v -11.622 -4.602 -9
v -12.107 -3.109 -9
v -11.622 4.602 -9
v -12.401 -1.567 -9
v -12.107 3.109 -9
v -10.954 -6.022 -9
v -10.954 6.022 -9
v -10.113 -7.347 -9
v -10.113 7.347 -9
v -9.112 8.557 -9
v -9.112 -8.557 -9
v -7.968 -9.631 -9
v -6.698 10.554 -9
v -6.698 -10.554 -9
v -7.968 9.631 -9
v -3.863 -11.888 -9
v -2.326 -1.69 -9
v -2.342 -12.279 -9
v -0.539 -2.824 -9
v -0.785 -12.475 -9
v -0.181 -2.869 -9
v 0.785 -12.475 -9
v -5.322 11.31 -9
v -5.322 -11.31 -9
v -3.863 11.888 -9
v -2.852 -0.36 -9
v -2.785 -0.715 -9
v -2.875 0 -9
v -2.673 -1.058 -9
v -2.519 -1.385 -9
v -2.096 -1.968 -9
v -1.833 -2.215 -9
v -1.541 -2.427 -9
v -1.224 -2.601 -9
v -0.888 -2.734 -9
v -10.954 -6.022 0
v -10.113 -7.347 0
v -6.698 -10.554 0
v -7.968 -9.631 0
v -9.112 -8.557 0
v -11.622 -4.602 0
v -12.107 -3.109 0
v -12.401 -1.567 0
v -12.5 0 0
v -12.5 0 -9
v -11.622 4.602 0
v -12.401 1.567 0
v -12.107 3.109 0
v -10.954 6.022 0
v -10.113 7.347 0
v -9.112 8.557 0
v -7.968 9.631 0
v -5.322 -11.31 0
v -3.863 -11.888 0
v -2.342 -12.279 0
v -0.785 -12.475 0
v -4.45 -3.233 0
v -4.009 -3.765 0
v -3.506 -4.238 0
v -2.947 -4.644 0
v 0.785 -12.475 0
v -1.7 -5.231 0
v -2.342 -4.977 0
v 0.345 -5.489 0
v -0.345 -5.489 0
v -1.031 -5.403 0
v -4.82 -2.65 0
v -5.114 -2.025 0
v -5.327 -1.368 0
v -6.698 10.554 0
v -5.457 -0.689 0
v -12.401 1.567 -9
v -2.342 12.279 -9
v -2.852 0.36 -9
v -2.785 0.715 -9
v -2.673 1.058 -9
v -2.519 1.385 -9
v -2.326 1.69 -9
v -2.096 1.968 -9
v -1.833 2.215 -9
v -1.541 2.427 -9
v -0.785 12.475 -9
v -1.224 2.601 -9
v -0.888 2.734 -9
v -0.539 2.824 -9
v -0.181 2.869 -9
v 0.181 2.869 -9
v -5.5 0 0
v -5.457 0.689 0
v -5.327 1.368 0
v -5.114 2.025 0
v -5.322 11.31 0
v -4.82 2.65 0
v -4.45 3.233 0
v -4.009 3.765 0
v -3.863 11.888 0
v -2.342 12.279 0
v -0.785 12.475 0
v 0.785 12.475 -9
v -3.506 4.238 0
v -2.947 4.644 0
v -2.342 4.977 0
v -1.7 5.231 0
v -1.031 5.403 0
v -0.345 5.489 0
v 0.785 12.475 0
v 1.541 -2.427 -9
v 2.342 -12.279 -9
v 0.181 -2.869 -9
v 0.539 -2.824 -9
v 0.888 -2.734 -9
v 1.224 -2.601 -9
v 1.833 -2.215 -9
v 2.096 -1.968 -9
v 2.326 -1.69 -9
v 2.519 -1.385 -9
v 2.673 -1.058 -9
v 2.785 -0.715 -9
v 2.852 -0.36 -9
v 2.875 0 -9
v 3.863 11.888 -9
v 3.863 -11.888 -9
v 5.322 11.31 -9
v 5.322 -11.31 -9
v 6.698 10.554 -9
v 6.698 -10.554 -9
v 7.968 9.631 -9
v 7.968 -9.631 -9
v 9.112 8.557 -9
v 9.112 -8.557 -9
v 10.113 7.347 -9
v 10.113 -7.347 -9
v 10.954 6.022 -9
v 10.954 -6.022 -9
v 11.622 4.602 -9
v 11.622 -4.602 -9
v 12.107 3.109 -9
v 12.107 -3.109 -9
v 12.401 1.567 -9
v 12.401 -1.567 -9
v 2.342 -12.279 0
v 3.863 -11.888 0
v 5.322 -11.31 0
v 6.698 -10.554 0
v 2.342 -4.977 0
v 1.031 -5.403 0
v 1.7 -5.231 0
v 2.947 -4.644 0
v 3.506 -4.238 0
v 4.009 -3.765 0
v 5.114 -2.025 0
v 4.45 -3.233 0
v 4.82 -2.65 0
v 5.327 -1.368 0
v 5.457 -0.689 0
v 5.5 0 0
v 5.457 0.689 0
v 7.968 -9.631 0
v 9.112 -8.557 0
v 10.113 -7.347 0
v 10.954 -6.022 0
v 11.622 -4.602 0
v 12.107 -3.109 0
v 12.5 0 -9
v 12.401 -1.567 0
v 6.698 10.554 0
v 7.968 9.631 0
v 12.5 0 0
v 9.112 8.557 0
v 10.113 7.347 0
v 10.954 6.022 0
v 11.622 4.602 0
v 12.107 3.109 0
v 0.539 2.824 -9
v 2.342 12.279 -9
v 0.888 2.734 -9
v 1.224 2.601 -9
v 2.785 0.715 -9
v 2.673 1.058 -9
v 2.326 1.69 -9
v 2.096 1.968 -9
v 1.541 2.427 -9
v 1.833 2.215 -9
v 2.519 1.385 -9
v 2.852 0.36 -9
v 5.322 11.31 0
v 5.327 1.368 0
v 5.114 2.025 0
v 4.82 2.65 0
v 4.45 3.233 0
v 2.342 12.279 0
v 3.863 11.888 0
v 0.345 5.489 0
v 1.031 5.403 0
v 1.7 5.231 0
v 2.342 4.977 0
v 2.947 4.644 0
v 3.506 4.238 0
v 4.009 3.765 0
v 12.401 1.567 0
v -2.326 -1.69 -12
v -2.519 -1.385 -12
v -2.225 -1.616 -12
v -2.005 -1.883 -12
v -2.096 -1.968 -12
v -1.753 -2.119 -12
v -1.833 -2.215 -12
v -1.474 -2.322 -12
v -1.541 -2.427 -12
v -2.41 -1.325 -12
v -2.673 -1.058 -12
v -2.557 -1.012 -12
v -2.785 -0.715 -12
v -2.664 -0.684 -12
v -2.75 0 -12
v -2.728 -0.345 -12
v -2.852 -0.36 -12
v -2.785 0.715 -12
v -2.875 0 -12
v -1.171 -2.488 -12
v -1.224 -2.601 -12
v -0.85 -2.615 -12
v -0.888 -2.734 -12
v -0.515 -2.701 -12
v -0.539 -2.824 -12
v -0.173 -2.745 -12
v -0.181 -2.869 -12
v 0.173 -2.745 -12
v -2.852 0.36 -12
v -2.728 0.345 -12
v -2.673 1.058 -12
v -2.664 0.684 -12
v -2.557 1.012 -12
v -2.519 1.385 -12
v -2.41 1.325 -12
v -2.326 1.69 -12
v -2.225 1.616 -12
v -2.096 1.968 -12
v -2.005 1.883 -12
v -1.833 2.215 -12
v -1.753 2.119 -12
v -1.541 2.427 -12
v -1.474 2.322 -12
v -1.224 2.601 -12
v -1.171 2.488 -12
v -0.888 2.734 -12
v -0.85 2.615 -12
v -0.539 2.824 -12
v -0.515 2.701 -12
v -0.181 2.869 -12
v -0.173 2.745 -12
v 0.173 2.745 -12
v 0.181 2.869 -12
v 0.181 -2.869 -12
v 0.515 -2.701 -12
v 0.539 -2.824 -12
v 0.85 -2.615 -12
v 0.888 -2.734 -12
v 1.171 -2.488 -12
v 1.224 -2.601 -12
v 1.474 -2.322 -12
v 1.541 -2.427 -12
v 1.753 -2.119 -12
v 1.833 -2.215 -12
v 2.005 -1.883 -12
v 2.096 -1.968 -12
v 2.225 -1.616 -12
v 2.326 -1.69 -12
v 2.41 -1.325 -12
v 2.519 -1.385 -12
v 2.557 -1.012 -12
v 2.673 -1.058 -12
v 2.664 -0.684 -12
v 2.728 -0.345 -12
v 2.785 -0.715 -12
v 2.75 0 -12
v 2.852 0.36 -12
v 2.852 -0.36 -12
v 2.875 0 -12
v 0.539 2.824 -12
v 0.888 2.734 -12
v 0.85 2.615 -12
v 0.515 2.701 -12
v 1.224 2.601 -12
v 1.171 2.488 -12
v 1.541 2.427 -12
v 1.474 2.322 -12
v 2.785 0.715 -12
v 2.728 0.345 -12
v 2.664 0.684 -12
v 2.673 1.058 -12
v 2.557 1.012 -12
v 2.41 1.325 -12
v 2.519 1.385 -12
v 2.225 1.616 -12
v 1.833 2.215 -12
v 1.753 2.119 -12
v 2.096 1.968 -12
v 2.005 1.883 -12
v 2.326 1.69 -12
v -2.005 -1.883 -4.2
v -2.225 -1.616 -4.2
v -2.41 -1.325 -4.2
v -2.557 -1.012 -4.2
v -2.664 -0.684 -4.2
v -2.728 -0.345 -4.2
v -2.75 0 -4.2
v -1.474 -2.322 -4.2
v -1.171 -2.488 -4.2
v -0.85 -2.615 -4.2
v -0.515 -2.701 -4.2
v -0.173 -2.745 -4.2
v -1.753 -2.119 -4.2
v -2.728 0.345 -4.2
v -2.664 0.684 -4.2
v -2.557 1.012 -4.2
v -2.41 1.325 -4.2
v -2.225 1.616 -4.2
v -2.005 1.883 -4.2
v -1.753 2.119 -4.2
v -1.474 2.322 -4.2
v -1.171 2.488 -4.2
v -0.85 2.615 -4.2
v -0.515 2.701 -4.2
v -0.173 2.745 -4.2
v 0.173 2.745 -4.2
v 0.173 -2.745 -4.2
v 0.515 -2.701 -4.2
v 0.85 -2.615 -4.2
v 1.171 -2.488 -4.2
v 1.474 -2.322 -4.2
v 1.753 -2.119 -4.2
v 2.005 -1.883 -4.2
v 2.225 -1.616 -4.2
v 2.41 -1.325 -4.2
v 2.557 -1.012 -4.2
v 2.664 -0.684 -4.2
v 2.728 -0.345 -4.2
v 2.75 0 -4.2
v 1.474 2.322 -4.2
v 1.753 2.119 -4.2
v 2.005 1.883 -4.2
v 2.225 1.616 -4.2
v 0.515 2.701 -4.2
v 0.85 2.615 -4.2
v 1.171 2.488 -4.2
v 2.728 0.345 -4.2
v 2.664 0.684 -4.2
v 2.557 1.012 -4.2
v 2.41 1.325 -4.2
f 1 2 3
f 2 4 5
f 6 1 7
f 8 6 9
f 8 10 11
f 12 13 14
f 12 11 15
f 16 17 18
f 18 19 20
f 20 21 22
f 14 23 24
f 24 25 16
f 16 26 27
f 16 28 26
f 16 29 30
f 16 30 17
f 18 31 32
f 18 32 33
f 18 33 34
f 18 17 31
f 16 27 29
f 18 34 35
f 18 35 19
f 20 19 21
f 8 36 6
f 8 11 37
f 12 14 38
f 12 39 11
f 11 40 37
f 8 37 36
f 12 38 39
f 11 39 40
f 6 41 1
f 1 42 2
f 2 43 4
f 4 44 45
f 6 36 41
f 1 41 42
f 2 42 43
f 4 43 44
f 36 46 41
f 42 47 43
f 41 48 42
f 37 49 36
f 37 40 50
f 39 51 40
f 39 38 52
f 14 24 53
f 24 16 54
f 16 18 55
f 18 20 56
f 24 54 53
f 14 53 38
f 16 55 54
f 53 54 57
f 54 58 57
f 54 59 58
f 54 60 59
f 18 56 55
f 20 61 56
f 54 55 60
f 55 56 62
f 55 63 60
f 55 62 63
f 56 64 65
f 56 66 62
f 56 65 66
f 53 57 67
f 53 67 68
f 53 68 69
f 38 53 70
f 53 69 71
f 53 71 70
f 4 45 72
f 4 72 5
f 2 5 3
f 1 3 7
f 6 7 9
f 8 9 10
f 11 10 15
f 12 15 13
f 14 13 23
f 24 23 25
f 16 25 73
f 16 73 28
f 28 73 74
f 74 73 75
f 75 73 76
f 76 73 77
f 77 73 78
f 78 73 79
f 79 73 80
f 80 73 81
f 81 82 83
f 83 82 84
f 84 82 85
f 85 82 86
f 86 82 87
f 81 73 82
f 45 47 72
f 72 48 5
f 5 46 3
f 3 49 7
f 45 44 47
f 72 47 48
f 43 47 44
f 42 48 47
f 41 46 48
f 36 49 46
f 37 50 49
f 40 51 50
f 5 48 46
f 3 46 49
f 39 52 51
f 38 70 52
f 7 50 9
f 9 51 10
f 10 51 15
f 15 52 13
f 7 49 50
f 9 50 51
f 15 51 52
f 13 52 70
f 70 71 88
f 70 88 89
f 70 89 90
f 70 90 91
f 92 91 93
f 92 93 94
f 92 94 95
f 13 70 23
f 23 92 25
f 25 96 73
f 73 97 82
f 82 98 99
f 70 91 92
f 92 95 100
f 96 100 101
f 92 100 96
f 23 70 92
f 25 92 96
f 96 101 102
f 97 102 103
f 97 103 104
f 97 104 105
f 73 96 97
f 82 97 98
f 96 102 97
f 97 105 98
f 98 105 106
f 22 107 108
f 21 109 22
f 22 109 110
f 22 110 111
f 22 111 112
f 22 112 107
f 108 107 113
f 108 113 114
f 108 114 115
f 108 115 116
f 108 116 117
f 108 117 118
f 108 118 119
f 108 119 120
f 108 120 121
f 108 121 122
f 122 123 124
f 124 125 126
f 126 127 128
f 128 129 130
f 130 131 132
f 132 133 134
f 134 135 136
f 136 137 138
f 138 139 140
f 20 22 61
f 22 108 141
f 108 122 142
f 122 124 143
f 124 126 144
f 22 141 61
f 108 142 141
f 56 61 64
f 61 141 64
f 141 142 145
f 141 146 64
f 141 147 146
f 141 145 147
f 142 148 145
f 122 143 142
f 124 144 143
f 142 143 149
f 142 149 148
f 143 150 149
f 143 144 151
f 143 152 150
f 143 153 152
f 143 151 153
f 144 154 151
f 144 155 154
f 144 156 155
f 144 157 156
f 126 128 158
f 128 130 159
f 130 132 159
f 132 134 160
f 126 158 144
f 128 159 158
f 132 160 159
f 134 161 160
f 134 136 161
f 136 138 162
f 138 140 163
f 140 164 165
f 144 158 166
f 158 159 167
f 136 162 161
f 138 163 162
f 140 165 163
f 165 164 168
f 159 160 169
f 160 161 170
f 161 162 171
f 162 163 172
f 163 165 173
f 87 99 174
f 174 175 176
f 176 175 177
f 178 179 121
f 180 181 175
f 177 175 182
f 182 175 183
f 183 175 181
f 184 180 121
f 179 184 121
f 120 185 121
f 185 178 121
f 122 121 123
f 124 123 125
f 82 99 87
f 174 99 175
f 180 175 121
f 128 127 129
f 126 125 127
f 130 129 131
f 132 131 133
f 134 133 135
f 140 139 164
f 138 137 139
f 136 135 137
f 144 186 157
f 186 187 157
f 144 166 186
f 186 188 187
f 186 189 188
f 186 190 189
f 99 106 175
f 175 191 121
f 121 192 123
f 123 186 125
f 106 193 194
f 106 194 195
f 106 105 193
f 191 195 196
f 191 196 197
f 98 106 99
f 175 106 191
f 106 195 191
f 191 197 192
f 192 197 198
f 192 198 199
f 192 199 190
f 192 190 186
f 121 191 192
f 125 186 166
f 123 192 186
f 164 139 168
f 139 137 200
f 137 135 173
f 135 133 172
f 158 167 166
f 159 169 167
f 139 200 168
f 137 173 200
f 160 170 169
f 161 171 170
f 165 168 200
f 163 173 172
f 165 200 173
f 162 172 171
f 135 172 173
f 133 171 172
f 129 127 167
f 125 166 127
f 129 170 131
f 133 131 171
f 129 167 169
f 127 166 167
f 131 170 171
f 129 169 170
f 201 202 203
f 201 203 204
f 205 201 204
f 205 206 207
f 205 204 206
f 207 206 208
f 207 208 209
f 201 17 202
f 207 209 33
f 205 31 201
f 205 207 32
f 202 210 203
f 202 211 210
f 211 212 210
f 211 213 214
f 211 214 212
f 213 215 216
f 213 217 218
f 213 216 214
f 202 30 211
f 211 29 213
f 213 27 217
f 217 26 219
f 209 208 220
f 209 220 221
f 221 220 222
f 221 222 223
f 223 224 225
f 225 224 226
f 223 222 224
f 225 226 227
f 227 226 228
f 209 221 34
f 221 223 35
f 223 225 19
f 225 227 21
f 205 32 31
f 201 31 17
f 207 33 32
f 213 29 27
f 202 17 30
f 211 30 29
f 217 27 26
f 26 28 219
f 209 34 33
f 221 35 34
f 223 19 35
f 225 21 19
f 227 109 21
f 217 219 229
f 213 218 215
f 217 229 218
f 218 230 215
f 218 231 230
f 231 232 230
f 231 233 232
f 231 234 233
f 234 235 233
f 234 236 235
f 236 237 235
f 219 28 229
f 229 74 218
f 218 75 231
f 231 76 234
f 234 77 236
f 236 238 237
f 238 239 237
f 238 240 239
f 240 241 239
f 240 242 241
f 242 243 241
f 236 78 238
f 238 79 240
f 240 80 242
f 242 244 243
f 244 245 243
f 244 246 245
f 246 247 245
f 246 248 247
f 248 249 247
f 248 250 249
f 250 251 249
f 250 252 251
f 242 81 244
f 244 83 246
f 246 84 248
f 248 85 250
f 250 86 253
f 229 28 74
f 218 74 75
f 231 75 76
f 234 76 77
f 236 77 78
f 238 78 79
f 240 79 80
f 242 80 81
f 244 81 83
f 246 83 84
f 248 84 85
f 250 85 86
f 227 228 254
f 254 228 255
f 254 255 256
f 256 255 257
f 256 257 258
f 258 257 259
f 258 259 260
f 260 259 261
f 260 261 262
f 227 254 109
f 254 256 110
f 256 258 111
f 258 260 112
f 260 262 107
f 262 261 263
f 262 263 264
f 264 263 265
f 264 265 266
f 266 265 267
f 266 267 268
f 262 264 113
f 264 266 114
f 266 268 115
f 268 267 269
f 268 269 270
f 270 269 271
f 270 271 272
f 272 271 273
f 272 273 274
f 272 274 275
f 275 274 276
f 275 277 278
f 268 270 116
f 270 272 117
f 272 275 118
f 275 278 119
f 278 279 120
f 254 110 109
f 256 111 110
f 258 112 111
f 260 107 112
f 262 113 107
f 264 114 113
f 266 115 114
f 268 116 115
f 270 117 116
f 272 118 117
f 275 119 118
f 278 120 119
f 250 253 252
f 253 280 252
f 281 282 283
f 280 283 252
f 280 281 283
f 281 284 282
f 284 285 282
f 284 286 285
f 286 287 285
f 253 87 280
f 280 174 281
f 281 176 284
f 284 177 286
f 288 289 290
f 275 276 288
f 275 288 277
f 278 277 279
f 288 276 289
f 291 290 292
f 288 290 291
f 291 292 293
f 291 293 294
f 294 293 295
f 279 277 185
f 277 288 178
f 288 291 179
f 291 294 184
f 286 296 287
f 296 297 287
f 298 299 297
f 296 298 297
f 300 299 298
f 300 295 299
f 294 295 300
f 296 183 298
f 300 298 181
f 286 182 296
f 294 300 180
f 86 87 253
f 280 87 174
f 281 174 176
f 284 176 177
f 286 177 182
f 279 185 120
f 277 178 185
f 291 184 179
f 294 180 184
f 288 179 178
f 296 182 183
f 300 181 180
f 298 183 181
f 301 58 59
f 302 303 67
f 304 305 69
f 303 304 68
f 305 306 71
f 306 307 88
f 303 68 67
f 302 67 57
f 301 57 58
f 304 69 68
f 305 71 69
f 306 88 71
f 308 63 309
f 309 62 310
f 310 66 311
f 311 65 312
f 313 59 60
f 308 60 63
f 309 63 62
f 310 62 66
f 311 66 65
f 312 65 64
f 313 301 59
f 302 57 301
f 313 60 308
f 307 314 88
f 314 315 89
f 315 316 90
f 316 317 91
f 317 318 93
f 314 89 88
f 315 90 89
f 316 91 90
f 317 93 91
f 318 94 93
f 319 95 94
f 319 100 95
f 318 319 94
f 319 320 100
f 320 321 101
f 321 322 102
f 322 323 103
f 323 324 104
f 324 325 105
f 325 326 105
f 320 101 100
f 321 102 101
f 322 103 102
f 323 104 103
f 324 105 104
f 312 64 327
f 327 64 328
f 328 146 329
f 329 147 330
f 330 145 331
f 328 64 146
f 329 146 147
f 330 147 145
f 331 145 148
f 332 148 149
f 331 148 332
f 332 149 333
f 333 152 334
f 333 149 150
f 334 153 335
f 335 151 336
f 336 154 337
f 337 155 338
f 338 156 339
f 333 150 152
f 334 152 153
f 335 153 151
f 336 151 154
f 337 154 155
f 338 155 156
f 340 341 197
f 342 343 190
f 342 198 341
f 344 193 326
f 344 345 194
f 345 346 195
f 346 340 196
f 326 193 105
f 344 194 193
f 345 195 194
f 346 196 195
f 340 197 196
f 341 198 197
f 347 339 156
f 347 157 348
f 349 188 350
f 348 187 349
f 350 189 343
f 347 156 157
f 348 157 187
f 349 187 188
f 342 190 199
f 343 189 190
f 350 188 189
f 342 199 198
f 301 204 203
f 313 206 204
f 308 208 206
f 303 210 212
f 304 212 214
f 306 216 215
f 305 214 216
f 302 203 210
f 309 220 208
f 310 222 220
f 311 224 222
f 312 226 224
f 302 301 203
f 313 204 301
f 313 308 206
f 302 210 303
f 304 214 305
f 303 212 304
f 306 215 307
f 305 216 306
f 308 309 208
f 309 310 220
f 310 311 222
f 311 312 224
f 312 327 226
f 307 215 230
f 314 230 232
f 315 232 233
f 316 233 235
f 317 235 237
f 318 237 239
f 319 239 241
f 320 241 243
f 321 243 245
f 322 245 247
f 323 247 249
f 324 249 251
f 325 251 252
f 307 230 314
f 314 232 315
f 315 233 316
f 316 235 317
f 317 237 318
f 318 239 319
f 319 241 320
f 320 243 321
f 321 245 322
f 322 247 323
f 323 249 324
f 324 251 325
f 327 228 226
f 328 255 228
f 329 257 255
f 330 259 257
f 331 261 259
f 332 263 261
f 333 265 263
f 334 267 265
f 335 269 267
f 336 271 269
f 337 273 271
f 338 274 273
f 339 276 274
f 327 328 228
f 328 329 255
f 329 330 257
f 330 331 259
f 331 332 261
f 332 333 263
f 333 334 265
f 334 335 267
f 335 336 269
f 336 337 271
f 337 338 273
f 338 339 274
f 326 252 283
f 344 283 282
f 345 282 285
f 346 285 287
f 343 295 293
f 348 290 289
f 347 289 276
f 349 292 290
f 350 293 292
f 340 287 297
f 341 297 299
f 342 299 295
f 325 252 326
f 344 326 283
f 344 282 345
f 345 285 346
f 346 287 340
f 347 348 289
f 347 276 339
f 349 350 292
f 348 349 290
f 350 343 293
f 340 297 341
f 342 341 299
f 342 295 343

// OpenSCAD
$fn = 50;

difference() {
	union() {
		translate(v = [0, 0, -9.0]) {
			cylinder(h = 9, r = 12.5);
		}
		#translate(v = [0, 0, -12.0]) {
			cylinder(h = 12, r = 2.875);
		}
	}
	union() {
		translate(v = [0, 0, 0]) {
			rotate(a = [0, 0, 0]) {
				difference() {
					union() {
						translate(v = [0, 0, -12.0]) {
							cylinder(h = 12, r = 2.25);
						}
						translate(v = [0, 0, -4.2]) {
							cylinder(h = 4.2, r1 = 2.75, r2 = 5.5);
						}
						translate(v = [0, 0, -12.0]) {
							cylinder(h = 12, r = 2.75);
						}
						translate(v = [0, 0, -12.0]) {
							cylinder(h = 12, r = 2.25);
						}
					}
					union();
				}
			}
		}
	}
}
